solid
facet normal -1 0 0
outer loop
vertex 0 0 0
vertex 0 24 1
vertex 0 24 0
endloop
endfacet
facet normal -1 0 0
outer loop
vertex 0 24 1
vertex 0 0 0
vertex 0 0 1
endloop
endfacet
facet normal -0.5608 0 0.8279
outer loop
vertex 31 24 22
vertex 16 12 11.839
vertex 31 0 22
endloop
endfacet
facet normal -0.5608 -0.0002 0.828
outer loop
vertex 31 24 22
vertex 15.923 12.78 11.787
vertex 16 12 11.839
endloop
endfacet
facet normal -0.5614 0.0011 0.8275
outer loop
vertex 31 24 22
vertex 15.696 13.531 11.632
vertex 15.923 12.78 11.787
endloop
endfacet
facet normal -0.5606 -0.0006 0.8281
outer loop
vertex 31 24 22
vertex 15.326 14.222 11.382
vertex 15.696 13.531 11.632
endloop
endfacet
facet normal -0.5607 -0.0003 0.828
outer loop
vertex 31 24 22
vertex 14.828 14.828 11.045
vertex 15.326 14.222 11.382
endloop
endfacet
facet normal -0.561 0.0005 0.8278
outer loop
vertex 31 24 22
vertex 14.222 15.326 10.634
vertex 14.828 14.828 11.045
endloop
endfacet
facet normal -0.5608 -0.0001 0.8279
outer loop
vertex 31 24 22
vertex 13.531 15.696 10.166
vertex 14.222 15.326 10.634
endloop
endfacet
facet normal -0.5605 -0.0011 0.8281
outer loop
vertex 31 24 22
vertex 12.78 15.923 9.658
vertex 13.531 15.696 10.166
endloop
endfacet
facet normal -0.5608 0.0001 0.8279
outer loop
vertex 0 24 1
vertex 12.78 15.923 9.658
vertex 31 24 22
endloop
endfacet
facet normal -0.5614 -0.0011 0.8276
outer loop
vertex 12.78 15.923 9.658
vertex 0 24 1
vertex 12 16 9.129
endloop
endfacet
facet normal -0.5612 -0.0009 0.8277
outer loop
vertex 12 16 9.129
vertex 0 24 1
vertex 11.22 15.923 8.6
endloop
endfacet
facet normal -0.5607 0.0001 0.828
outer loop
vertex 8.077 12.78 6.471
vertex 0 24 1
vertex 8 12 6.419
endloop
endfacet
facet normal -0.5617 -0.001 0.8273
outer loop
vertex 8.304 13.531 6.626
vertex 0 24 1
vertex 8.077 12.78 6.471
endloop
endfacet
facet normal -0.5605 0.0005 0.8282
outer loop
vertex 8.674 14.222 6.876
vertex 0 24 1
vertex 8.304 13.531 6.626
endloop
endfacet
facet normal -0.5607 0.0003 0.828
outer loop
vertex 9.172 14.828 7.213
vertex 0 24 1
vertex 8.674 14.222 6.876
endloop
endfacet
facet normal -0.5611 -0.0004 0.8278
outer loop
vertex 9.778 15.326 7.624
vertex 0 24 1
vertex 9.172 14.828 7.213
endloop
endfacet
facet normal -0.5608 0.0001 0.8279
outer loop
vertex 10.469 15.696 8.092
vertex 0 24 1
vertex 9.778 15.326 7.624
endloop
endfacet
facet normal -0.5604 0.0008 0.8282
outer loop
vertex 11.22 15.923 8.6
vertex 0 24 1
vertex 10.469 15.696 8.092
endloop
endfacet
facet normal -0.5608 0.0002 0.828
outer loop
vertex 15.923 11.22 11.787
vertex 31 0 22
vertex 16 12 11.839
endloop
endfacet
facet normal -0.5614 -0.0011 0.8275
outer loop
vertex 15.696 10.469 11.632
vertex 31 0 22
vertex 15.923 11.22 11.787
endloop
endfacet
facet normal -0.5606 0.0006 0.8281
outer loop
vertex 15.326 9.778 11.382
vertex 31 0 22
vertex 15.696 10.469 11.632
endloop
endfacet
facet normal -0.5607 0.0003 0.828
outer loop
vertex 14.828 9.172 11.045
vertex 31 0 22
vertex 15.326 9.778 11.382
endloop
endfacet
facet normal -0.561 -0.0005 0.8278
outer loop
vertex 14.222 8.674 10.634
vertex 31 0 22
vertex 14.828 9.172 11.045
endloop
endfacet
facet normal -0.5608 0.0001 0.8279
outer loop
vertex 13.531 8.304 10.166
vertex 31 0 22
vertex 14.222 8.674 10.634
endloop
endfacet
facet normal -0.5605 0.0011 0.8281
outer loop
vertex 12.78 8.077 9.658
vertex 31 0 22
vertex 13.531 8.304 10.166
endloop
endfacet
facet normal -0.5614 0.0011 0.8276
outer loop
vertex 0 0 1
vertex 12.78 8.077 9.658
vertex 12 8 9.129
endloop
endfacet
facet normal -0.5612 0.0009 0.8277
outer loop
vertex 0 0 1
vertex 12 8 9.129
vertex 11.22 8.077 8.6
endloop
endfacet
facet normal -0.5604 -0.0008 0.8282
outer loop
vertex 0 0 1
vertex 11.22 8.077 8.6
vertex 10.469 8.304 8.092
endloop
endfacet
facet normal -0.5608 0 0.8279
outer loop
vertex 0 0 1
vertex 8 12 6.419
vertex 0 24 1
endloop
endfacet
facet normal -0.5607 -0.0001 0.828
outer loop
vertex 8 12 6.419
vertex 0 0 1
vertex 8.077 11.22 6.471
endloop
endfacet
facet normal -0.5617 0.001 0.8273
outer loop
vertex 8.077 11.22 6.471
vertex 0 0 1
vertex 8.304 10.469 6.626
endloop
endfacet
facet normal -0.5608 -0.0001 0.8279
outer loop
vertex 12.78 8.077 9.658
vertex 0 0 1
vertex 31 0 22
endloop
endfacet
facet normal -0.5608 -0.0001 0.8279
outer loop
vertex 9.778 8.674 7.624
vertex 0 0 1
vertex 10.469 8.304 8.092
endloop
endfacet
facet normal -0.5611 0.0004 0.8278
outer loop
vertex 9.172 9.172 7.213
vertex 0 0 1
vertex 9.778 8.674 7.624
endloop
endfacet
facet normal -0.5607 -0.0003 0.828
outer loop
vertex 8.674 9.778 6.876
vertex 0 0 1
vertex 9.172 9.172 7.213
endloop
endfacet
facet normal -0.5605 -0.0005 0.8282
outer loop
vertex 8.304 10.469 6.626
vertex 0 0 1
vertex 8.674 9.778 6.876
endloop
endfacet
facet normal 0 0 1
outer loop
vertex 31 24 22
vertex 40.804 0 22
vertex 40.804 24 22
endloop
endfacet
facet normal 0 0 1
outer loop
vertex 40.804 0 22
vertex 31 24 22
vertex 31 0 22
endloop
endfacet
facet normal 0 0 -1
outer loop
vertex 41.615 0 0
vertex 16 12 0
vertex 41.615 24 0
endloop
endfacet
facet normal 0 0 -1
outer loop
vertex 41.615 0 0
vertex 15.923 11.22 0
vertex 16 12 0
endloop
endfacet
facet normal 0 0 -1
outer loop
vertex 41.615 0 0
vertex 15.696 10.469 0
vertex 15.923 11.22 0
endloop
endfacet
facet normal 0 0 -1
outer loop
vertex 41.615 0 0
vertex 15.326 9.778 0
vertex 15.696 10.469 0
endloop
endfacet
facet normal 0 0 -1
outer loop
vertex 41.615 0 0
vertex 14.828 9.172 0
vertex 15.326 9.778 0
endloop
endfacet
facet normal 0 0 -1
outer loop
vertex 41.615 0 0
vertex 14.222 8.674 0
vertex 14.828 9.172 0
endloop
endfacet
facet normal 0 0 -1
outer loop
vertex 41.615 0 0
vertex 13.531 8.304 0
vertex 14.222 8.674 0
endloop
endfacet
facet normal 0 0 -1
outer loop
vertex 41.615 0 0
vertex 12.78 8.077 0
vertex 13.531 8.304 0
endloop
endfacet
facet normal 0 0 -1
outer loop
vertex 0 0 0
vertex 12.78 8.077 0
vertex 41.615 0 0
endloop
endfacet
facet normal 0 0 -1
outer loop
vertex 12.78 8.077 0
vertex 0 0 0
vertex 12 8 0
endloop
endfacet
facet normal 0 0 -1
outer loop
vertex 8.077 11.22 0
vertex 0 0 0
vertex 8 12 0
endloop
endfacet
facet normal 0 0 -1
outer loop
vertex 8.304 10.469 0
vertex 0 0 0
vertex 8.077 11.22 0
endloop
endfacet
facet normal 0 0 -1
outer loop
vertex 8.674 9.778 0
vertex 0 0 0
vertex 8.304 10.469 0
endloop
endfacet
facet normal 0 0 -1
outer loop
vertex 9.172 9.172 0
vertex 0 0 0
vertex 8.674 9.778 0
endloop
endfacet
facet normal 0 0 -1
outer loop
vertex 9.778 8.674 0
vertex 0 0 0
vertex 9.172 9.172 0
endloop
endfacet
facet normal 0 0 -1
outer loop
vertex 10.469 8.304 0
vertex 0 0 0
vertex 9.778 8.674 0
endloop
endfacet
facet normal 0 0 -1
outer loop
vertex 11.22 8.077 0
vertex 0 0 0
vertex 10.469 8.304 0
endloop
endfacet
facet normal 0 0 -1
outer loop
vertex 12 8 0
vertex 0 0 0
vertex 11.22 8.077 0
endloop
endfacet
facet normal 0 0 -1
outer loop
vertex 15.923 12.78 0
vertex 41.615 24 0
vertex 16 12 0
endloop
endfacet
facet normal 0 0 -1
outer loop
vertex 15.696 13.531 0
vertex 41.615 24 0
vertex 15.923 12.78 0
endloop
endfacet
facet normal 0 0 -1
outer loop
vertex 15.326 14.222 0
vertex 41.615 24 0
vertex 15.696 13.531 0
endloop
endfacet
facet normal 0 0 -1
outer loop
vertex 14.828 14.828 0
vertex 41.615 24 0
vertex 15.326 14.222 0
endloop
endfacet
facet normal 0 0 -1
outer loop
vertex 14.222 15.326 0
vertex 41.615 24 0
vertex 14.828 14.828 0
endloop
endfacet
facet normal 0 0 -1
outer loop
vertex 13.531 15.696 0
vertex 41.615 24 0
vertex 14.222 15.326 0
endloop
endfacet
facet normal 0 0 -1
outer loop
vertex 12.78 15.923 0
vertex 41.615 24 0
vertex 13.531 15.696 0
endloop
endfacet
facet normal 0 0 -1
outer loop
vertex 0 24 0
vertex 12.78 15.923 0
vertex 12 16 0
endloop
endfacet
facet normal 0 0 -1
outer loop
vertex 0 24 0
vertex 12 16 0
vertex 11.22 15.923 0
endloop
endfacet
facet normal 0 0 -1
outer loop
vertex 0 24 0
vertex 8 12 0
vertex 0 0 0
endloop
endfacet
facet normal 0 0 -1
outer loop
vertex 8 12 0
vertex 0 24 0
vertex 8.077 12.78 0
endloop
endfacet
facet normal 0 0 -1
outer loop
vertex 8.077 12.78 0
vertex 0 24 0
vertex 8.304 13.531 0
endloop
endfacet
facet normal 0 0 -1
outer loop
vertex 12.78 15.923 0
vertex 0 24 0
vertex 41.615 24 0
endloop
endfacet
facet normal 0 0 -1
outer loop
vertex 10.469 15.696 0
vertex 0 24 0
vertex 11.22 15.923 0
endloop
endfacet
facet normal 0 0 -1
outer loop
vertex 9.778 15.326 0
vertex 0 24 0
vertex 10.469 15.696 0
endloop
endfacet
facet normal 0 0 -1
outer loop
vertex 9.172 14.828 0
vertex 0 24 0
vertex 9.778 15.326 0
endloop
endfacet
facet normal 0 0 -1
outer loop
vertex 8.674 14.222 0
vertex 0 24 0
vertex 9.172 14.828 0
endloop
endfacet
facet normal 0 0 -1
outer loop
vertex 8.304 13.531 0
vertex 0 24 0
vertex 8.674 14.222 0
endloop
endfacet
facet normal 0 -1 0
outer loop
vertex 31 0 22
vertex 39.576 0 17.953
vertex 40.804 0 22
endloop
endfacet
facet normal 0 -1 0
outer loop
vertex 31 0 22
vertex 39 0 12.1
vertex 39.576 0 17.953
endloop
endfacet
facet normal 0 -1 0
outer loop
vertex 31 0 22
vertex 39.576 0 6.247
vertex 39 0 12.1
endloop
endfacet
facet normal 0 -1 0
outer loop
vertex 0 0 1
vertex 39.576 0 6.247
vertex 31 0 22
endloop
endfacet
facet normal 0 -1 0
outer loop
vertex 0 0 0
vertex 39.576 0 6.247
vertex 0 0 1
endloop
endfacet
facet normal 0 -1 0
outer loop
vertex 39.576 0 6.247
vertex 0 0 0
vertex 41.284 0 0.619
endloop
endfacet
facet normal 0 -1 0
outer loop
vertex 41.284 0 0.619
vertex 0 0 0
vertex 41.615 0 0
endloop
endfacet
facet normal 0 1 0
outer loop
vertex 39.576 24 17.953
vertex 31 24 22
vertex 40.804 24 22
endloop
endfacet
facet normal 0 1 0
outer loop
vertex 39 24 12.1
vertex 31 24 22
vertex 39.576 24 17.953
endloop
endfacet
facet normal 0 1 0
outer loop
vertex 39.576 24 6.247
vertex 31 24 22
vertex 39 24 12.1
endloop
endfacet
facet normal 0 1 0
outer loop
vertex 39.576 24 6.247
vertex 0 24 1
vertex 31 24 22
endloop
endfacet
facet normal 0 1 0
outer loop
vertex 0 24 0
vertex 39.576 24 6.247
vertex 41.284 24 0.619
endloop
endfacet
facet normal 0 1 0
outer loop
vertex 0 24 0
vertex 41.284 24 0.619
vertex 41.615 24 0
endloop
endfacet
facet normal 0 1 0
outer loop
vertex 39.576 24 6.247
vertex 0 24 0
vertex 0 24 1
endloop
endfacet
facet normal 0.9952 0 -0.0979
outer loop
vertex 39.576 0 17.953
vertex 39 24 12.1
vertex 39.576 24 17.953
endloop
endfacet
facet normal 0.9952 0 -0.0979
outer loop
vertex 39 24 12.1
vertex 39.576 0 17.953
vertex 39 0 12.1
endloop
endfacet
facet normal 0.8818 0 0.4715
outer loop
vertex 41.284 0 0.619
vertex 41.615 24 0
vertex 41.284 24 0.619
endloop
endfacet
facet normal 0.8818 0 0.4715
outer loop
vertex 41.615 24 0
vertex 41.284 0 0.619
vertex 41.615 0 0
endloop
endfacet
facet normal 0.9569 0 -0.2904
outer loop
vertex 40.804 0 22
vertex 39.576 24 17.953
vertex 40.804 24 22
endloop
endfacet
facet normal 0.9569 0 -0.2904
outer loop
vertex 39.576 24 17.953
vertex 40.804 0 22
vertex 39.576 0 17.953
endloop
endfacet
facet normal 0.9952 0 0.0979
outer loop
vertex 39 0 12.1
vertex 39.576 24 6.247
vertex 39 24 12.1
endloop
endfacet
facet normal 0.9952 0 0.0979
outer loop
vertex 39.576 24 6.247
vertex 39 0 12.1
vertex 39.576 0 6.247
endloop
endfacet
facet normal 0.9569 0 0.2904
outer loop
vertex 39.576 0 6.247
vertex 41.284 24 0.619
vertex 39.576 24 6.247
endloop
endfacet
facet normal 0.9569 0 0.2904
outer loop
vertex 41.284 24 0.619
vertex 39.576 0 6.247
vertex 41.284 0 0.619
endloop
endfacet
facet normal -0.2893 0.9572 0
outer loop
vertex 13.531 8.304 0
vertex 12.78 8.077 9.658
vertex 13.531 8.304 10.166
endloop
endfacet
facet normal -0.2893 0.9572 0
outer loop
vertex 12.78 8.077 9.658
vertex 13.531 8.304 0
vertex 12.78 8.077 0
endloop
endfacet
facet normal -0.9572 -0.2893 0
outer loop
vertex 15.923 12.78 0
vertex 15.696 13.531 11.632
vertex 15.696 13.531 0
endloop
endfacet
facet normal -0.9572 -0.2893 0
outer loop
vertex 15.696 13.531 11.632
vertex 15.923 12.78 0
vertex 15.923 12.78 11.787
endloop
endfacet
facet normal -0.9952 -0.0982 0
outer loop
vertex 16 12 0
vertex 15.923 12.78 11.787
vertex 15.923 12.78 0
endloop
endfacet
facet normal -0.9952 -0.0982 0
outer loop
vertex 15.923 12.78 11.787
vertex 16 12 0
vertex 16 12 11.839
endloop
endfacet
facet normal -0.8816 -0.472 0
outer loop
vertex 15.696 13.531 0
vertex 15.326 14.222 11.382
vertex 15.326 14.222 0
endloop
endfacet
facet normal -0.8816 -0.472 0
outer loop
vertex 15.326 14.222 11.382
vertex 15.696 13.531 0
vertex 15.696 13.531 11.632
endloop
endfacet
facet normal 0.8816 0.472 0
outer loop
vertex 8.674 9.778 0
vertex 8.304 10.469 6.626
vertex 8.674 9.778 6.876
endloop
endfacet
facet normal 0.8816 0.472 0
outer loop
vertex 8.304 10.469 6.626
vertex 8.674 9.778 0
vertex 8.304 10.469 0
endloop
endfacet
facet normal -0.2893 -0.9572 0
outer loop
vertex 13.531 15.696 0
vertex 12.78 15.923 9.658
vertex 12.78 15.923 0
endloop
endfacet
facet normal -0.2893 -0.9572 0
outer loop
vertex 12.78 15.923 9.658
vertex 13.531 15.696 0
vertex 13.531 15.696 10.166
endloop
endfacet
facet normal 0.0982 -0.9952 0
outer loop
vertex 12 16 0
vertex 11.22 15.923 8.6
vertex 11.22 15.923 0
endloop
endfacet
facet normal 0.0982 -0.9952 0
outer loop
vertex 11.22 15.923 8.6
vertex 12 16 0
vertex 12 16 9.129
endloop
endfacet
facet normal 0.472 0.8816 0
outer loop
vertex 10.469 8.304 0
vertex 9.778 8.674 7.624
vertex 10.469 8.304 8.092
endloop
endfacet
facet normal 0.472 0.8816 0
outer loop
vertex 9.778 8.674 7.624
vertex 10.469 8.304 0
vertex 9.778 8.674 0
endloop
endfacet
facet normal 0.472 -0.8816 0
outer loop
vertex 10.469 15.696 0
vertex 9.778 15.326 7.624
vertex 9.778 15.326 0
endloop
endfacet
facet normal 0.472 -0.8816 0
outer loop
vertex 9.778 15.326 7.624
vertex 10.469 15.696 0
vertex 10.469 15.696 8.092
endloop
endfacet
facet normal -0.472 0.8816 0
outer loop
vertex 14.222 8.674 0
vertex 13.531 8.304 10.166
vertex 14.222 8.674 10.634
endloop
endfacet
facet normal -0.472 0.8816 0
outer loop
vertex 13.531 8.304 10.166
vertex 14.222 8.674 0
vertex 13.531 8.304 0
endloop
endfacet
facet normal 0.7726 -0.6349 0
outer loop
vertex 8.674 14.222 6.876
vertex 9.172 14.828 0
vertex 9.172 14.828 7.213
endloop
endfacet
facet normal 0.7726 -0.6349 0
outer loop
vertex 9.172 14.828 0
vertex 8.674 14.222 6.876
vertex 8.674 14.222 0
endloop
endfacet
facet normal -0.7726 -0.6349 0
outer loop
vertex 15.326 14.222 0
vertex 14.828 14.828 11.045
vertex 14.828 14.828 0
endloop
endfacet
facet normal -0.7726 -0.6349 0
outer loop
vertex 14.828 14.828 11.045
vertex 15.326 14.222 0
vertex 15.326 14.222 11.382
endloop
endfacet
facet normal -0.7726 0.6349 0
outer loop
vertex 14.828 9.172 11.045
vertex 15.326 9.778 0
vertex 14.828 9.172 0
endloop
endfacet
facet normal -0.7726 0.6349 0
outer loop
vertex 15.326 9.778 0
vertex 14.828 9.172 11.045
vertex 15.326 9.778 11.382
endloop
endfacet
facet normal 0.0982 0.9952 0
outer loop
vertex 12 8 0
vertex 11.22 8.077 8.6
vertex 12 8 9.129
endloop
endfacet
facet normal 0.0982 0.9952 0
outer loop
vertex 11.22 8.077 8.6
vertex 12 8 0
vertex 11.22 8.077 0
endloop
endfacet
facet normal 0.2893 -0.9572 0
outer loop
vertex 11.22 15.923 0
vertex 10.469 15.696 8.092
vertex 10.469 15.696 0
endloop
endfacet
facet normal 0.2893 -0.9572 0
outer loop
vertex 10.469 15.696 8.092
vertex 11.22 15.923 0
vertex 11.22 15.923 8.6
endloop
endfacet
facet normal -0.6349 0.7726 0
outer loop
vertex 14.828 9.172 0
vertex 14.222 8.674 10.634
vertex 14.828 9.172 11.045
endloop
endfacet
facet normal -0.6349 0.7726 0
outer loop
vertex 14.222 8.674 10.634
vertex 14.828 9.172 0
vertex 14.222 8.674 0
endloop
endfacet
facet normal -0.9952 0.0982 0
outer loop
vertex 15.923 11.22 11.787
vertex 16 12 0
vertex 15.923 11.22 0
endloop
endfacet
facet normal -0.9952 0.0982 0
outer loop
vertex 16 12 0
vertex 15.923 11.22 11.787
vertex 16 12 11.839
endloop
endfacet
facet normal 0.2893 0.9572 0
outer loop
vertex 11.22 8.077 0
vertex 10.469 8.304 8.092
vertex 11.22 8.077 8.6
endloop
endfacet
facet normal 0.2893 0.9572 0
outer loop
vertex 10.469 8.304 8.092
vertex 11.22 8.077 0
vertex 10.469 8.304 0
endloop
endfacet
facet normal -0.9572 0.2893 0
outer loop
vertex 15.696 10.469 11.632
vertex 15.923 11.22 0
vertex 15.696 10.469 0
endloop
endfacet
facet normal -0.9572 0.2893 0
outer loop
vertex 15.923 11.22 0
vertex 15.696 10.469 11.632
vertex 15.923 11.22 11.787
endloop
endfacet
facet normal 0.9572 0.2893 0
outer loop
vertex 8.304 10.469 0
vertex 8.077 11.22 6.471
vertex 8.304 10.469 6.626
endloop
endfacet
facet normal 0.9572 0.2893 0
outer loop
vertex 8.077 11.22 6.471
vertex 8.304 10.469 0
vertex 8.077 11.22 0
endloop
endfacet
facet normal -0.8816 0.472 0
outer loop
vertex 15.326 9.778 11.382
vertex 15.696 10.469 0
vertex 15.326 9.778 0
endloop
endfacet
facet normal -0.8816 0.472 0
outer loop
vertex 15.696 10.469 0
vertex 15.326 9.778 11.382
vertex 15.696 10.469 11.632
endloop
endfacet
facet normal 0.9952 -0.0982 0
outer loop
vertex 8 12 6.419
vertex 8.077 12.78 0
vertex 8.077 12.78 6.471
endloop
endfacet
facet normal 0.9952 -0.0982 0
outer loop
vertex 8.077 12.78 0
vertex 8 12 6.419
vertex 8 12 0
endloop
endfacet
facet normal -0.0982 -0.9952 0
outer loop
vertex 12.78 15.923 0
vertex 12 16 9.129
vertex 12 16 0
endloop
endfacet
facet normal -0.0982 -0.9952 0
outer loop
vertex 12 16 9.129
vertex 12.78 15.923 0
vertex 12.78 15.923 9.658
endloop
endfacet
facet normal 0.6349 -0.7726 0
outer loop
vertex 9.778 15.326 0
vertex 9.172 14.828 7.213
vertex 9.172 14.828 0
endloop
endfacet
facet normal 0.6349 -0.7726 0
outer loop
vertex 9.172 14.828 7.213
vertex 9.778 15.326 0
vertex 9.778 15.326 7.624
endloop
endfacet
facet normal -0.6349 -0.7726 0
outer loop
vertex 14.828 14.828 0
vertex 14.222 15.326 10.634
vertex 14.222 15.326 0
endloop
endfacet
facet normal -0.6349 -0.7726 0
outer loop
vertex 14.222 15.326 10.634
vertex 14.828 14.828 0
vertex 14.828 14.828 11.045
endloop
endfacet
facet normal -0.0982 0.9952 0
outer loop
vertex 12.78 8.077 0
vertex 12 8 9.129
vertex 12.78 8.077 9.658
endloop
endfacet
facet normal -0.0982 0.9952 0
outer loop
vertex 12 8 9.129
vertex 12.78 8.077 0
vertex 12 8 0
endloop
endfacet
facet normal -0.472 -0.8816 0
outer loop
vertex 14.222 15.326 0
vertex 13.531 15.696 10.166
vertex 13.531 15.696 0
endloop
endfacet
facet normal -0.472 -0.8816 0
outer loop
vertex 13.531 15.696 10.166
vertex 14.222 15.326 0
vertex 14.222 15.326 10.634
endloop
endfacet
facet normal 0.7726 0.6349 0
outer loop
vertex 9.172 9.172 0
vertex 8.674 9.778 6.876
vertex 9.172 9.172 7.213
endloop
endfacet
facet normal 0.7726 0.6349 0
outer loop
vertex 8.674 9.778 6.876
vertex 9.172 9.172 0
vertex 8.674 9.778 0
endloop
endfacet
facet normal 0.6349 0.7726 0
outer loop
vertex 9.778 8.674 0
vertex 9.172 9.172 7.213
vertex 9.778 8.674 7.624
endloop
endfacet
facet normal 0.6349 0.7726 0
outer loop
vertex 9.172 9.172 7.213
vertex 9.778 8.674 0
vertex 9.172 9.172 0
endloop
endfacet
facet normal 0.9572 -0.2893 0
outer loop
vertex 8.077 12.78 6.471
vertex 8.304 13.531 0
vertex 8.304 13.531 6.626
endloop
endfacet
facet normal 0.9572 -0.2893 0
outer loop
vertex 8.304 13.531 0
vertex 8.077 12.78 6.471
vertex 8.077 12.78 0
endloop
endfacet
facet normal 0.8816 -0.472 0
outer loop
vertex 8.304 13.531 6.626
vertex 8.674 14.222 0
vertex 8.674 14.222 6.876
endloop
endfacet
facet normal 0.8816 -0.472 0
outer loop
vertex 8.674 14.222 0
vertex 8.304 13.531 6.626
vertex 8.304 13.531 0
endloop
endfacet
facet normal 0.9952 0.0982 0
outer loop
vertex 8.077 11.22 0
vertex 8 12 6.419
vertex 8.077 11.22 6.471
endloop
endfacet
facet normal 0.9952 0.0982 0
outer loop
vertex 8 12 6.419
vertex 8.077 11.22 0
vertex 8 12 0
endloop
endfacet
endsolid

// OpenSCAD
// file: rail_spec.scad
// ===== 레일 플랫폼 방식 공용 파라미터 =====
// 핵심 개념: 침대를 들지 않고 굴려서 올라가는 2개의 계량 레일.
//   각 레일 = 알루미늄 프로파일 빔 + 양 끝단 아래 로드셀 2개
//   침대 좌/우 바퀴가 각각 레일 위를 굴러 들어가 크래들에 안착.
//   총 로드셀 4개 = 좌레일 앞/뒤 + 우레일 앞/뒤
//   총중량 = 4개 합 / 무게중심 = 모멘트 계산

// --- 로드셀 CAS BCA-100L ---
L_len=150; L_wid=35; L_thk=40;
L_pitch_x=19; L_pitch_y=15;
L_free_x1=16.5; L_free_x2=35.5;   // 자유단(상면 탭)
L_fix_x1=114.5; L_fix_x2=133.5;   // 고정단(하면 탭)

// --- 스택 높이 ---
PAD_thk    = 6;    // 바닥 패드 두께
FOOT_h     = 2.5;  // 패드 하면 지지 발 높이 (전면접촉 대신 4점 지지)
FOOT_d     = 12;   // 지지 발 지름
SPACER_h   = 5;    // 로드셀 고정단 단상
BRACKET_t  = 8;    // 레일-로드셀 연결 브래킷 두께 (6->8: 굽힘강성 ~2.4배, 평판 처짐 보완)
RAIL_h     = 30;   // 알루미늄 프로파일 높이 (30x60 사용)
RAIL_w     = 60;   // 프로파일 폭 (바퀴 두께 22mm + 여유)
DECK_Z = PAD_thk + SPACER_h + L_thk + BRACKET_t + RAIL_h;   // = 87
// 주: 패드 하면 지지 발(FOOT_h) 때문에 4개 채널 모두 절대 높이가 FOOT_h 만큼
//     동일하게 올라간다. 로드셀 상호 수평/정합은 유지되고(전부 같이 올라감),
//     절대 데크 높이만 DECK_Z + FOOT_h 가 된다. 램프는 하중경로 분리부품이라
//     이 2.5mm 차이는 무시 가능(15° 경사에서 미소).

// --- 레일 전체 ---
CASTER_PITCH = 1700;   // 침대 앞뒤 캐스터 간격
RAMP_ANG = 15;
RAMP_len = DECK_Z / tan(RAMP_ANG);      // 약 325mm
RAIL_len = CASTER_PITCH + 400;          // 캐스터간격 + 양끝 여유

// --- 바퀴 ---
wheel_d=60; wheel_thk=22;   // 실측 후 교체
CRADLE_depth = 9;           // 얕은 크래들: 굴러 넘어갈 수 있되 안착은 되게
// main file
// ===== 바퀴 고임목 (안착 후 삽입해 고정) =====
// 크래들에 바퀴가 들어온 뒤 앞뒤로 하나씩 끼워 이탈 방지.
include <rail_spec.scad>
$fn=32;
ch_w = wheel_thk + 2;
ch_l = 45; ch_h = 22;
difference(){
    hull(){
        translate([0,0,0]) cube([ch_l, ch_w, 1]);
        translate([ch_l-14,0,0]) cube([14, ch_w, ch_h]);
    }
    // 바퀴 곡률 릴리프
    translate([ch_l+wheel_d/2-6, -1, ch_h*0.55]) rotate([-90,0,0])
        cylinder(d=wheel_d, h=ch_w+2);
    // 손잡이 홀
    translate([12, ch_w/2, -1]) cylinder(d=8, h=ch_h+2);
}
